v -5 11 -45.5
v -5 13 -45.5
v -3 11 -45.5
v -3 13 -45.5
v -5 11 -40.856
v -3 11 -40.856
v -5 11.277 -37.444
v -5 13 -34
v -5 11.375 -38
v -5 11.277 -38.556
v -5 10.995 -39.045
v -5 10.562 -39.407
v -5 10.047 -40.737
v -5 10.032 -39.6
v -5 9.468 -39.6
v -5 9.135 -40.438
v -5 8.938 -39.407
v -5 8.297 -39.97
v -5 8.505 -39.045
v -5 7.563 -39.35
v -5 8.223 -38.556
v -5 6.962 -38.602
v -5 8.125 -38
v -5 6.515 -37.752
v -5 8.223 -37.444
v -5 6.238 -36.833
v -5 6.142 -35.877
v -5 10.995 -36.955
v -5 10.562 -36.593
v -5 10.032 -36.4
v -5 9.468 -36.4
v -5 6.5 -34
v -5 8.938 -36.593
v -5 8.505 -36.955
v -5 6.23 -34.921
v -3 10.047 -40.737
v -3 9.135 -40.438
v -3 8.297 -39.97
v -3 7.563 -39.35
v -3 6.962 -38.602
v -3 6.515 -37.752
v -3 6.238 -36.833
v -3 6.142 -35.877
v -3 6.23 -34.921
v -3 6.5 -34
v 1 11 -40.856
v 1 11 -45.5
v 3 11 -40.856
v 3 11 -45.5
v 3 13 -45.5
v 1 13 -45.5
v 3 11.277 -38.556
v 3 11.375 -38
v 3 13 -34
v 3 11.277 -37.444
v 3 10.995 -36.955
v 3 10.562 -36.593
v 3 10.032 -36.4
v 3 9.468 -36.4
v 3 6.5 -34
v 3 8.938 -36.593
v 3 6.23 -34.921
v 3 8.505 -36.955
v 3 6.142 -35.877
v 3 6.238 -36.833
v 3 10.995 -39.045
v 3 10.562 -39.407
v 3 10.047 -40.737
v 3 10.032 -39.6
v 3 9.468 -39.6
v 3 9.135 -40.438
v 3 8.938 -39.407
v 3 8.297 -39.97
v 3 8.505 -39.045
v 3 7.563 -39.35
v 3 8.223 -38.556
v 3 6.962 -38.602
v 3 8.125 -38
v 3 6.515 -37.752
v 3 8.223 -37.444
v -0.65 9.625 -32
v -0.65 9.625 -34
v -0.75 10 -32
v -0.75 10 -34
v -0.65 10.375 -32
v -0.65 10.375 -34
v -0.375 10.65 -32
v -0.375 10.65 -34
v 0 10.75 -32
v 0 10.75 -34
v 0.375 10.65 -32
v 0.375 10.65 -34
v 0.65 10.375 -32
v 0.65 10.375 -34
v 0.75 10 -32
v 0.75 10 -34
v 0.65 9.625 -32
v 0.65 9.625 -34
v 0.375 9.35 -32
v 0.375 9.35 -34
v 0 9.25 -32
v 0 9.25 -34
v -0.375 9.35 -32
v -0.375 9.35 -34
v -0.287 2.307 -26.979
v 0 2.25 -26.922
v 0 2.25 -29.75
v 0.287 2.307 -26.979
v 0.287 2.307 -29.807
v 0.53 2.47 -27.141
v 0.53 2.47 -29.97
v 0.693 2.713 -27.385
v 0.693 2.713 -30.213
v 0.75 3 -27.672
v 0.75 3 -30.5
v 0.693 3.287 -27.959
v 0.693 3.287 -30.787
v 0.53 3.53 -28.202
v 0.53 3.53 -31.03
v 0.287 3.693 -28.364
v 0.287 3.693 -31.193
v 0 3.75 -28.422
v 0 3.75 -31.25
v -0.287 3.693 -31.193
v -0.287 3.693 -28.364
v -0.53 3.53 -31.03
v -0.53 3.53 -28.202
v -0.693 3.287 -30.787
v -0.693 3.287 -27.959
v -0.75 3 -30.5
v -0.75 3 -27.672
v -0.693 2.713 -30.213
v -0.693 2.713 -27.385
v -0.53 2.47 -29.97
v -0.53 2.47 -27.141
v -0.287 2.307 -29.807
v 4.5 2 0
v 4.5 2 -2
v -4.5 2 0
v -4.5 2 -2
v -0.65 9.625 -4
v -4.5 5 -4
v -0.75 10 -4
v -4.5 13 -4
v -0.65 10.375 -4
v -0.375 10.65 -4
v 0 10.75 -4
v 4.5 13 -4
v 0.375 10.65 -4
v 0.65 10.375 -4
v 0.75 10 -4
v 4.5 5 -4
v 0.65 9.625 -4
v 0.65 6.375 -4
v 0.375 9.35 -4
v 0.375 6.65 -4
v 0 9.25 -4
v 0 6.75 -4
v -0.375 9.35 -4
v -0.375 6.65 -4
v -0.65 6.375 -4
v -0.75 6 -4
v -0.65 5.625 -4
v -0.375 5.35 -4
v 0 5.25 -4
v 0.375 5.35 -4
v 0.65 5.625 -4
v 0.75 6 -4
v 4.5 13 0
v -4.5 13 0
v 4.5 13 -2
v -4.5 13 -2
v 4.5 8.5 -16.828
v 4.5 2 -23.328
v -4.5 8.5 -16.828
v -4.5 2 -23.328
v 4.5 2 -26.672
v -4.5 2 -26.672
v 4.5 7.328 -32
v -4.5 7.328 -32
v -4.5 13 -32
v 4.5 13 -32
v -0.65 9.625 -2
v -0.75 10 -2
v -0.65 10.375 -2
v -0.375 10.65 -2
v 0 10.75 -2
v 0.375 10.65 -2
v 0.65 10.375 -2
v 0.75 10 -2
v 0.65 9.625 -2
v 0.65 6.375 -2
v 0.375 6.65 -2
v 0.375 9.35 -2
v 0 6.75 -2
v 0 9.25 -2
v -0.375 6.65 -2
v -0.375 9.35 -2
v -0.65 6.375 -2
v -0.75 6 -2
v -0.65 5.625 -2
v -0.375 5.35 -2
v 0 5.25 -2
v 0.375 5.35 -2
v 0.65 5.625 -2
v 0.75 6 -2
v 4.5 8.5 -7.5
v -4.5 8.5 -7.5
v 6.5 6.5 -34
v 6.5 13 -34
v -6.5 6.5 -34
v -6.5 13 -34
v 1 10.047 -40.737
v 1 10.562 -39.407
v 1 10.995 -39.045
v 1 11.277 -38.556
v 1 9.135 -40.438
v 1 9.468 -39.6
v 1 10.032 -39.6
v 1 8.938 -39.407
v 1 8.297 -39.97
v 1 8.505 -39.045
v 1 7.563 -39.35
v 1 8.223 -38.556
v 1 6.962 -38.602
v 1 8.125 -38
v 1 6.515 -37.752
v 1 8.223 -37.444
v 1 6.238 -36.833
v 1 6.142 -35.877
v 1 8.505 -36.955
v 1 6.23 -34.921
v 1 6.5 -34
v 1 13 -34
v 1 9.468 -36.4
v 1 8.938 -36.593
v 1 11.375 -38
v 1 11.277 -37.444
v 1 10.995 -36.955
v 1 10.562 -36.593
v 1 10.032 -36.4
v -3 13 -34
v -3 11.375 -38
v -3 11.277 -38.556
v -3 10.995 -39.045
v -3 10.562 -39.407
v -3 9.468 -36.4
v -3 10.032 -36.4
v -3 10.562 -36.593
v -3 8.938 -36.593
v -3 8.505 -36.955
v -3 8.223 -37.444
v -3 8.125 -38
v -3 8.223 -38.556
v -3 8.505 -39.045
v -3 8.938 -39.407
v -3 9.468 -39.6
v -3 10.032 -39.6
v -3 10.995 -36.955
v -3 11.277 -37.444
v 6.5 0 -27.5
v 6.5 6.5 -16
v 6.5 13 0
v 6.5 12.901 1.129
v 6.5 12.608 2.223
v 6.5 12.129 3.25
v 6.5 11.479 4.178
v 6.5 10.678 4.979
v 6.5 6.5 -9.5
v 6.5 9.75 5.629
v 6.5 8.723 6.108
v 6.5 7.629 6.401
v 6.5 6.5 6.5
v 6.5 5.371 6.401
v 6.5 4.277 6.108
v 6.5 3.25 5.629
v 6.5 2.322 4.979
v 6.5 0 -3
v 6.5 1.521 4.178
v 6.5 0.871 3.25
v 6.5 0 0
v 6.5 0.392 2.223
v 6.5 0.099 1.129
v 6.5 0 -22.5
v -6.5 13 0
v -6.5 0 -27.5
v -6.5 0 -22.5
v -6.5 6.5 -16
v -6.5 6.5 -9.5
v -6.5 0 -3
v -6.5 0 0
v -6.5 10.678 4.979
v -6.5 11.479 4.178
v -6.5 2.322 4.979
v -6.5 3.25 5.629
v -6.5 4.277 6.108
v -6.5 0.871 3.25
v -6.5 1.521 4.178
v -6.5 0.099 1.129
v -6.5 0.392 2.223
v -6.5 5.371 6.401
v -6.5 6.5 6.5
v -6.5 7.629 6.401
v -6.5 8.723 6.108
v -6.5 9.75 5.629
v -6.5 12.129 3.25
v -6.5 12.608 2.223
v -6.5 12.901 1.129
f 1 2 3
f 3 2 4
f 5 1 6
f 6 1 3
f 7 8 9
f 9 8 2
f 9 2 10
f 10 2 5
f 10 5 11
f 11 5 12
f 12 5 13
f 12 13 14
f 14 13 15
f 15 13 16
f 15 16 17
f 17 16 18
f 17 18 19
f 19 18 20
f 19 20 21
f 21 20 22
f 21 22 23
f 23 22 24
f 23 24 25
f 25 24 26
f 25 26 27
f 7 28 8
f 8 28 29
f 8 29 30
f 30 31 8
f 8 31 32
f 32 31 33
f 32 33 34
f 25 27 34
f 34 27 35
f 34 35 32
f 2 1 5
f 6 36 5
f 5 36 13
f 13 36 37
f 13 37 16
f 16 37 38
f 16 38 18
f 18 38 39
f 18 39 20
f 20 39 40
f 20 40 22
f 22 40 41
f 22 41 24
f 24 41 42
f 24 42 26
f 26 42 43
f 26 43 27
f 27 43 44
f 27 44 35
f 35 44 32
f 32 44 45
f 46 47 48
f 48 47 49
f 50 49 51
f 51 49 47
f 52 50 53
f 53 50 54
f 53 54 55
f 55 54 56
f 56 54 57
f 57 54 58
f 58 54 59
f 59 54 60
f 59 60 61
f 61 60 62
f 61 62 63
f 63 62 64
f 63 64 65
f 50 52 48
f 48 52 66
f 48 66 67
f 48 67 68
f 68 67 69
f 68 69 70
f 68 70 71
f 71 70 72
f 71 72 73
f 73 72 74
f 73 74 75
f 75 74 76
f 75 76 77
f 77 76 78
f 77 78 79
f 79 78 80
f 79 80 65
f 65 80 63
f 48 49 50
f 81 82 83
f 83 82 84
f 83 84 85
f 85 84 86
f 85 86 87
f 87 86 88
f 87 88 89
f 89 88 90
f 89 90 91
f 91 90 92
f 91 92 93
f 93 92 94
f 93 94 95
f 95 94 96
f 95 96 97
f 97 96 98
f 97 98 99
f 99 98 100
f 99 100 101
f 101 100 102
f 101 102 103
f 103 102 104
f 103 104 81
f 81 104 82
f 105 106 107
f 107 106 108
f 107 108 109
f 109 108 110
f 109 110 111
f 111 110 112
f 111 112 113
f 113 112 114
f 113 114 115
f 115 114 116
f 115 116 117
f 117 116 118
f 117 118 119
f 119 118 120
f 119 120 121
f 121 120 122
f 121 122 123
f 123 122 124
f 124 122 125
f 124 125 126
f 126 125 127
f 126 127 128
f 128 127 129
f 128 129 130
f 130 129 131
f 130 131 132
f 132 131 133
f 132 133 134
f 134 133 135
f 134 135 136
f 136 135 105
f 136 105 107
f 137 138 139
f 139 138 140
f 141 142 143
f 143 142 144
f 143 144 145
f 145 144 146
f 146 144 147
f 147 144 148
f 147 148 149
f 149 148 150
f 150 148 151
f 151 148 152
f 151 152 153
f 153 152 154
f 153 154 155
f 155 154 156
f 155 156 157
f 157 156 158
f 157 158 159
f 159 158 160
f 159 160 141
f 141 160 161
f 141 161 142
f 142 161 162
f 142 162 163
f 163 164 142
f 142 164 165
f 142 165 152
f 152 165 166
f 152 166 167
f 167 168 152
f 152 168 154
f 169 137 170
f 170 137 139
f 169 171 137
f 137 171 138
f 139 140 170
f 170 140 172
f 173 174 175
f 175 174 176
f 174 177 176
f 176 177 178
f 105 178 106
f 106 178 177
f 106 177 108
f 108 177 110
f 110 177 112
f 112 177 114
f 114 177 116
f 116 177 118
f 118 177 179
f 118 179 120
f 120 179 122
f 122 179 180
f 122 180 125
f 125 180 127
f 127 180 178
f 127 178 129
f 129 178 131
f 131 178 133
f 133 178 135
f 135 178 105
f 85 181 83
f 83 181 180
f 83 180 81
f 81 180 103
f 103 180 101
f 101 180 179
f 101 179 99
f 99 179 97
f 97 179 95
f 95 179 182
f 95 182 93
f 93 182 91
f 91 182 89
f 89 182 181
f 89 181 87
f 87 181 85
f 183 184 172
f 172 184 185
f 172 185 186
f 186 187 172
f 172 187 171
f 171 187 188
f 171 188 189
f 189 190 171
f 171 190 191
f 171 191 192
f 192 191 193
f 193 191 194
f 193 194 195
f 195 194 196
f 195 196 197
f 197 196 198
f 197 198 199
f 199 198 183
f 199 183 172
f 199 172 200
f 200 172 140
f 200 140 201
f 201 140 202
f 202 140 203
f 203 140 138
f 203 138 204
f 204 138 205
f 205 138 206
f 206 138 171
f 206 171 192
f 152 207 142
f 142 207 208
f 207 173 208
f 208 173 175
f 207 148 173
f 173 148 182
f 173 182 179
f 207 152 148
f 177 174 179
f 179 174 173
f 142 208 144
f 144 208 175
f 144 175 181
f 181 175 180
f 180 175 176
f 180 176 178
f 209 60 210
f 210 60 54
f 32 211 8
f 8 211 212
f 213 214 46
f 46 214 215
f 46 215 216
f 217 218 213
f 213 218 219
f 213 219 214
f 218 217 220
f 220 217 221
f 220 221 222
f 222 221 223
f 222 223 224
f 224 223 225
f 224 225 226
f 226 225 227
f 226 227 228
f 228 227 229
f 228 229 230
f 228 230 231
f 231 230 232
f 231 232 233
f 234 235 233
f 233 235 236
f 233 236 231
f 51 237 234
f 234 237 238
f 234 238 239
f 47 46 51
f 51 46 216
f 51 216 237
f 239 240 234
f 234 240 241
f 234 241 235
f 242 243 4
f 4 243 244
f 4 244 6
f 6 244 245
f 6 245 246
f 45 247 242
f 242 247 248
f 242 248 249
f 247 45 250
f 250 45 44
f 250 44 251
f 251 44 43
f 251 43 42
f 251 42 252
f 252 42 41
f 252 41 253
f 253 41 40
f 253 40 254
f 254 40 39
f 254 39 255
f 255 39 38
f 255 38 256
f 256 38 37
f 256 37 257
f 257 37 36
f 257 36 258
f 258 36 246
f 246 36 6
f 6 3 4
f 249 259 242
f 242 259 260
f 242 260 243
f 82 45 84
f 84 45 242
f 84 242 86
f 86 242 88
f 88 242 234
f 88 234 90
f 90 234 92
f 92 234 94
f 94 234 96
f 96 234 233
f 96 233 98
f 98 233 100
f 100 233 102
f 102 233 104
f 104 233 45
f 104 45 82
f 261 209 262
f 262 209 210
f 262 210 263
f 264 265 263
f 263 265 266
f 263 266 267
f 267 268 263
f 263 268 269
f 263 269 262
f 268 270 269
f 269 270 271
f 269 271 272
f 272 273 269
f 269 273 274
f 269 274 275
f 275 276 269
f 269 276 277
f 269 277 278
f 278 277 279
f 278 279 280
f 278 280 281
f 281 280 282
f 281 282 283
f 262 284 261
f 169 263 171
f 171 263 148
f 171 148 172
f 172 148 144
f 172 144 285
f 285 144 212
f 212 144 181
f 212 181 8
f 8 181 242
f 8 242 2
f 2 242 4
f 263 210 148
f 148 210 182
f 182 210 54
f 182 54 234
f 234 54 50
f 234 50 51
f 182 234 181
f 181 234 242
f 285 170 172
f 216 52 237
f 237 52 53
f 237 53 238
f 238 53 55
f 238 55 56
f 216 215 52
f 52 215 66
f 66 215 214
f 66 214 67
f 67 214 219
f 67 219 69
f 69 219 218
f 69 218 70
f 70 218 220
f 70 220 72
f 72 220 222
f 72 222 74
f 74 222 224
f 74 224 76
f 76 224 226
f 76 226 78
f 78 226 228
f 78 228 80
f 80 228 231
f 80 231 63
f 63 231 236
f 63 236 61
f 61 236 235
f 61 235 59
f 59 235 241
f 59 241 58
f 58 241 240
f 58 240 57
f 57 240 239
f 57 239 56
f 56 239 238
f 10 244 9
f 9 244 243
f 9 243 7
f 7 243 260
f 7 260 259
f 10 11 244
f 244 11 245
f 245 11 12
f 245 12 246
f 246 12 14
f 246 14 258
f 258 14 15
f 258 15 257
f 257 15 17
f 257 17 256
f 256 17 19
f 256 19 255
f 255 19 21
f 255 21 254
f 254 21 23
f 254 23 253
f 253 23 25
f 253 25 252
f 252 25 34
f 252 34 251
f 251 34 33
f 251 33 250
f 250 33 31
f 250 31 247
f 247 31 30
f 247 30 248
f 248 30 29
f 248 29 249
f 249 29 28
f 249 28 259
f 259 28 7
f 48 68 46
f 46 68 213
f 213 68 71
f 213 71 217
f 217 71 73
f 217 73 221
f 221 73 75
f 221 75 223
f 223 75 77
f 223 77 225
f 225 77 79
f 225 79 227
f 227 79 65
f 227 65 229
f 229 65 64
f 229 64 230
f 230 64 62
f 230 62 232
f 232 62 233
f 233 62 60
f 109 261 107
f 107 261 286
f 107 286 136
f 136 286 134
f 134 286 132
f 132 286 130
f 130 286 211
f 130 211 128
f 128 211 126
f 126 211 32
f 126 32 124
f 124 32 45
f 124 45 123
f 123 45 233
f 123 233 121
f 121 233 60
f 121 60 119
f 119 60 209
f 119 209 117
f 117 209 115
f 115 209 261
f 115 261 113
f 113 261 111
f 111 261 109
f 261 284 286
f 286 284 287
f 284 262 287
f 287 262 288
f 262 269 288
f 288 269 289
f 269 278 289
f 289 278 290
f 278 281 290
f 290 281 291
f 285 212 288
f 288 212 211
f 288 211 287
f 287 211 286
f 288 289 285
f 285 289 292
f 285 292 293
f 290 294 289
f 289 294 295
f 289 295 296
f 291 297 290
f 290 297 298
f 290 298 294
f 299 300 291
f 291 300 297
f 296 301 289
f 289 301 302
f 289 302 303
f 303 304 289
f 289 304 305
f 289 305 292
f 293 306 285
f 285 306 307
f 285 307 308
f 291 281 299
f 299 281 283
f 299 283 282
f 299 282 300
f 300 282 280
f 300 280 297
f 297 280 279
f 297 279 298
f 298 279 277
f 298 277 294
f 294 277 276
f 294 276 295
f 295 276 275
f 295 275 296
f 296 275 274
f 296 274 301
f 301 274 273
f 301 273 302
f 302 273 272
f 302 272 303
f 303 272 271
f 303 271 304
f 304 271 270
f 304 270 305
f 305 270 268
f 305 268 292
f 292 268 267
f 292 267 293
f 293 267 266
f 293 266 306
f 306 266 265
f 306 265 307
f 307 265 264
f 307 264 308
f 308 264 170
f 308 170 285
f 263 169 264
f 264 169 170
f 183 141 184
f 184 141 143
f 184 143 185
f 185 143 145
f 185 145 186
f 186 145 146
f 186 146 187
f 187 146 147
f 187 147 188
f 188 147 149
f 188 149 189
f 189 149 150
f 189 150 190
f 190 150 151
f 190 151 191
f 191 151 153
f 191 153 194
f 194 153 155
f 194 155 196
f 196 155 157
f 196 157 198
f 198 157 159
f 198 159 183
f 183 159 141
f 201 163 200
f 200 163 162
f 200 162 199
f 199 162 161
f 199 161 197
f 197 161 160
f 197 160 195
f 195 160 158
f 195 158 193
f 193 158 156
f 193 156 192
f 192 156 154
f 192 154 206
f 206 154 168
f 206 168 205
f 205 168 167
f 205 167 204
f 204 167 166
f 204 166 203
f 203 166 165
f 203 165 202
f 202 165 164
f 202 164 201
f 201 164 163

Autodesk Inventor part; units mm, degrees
ref_plane "YZ Plane" through (0, 0, 0) normal (1, 0, 0) x (0, 1, 0)
ref_plane "XZ Plane" through (0, 0, 0) normal (0, 1, 0) x (-1, 0, 0)
sketch "Sketch2" plane through (0, 0, 0) normal (1, 0, 0) x (0, 1, 0)
  line L0 (0, 0) -> (0, -3)
  line L1 (13, 0) -> (13, -16)
  arc A0 (13, 0) -> (0, 0) centre (6.5, 0) ccw
  line L2 (-3.1385, 0) -> (18.8309, 0) projected
  line L3 (0, -52.4723) -> (0, 16.3287) projected
  line L4 (0, -3) -> (6.5, -9.5)
  line L5 (0, -3) -> (9.1924, -3) construction
  line L6 (6.5, -9.5) -> (6.5, -16)
  line L7 (6.5, -16) -> (0, -22.5)
  line L8 (6.5, -16) -> (15.6924, -16) construction
  line L9 (0, -22.5) -> (0, -27.5)
  line L10 (0, -27.5) -> (6.5, -34)
  line L11 (0, -27.5) -> (9.1924, -27.5) construction
  line L12 (13, -16) -> (13, -34)
  line L13 (13, -34) -> (13, -40.5)
  arc A1 (6.5, -34) -> (13, -40.5) centre (11.1419, -35.8581) ccw
  circle A2 centre (9.75, -38) radius 1.625
  dimension "d4" = 13
  dimension "d9" = 45
  dimension "d10" = 6.5
  dimension "d11" = 3
  dimension "d12" = 6.5
  dimension "d13" = 135
  dimension "d14" = 6.5
  dimension "d15" = 5
  dimension "d16" = 45
  dimension "d17" = 6.5
  dimension "d18" = 18
  dimension "d19" = 6.5
  dimension "d20" = 5
  dimension "d21" = 3.25
  dimension "d22" = 3.25
  dimension "d23" = 2.5
  dimension "d96" = 16
extrude "Extrusion1" add sketch "Sketch2" along normal mid plane 13 contours L2 L1 L12 L13 A1 L10 L3 L7 L6 L4 L0 | A0 L2
sketch "Sketch3" plane through (-6.5, 13, 0) normal (0, 1, 0) x (1, 0, 0)
  line L0 (0, 34) -> (13, 34) projected
  line L1 (0, 41) -> (1.5, 41)
  line L2 (1.5, 41) -> (1.5, 34)
  line L3 (1.5, 34) -> (0, 34)
  line L4 (0, 34) -> (0, 41)
  line L5 (0, 0) -> (0, 40.5) projected
  line L6 (3.5, 41) -> (7.5, 41)
  line L7 (7.5, 41) -> (7.5, 34)
  line L8 (7.5, 34) -> (3.5, 34)
  line L9 (3.5, 34) -> (3.5, 41)
  line L10 (9.5, 41) -> (13, 41)
  line L11 (13, 41) -> (13, 34)
  line L12 (13, 34) -> (9.5, 34)
  line L13 (9.5, 34) -> (9.5, 41)
  line L14 (13, 40.5) -> (13, 0) projected
  point P0 (6.5, 0)
  dimension "d47" = 1.5
  dimension "d48" = 7
  dimension "d49" = 4
  dimension "d50" = 7
  dimension "d51" = 2
  dimension "d52" = 7
  dimension "d53" = 2
extrude "Extrusion2" cut sketch "Sketch3" against normal blind 13
ref_plane "Work Plane1" through (4.5, 0, 0) normal (1, 0, 0) x (0, 0, -1)
sketch "Sketch4" plane through (4.5, 0, 0) normal (1, 0, 0) x (0, 0, -1)
  arc A0 (0, 13) -> (0, 0) centre (0, 6.5) ccw projected
  line L0 (0, 13) -> (34, 13) projected
  line L1 (34, 13) -> (34, 6.5) projected
  line L2 (34, 6.5) -> (27.5, 0) projected
  line L3 (27.5, 0) -> (22.5, 0) projected
  line L4 (22.5, 0) -> (16, 6.5) projected
  line L5 (34, 13) -> (34, 6.5) projected
  line L6 (34, 6.5) -> (27.5, 0) projected
  line L7 (27.5, 0) -> (22.5, 0) projected
  line L8 (22.5, 0) -> (16, 6.5) projected
  line L9 (16, 6.5) -> (9.5, 6.5) projected
  line L10 (9.5, 6.5) -> (3, 0) projected
  line L11 (3, 0) -> (0, 0) projected
  arc A1 (0, 13) -> (0, 0) centre (0, 6.5) ccw projected
  line L12 (0, 13) -> (34, 13) projected
  line L13 (0, 13) -> (0, 2)
  line L14 (0, 2) -> (2, 2)
  line L15 (4, 5) -> (7.5, 8.5)
  line L16 (2.1716, 2) -> (11.364, 2) construction
  line L17 (32, 13) -> (32, 7.3284)
  line L18 (32, 7.3284) -> (26.6716, 2)
  line L19 (32, 7.3284) -> (39.5355, 7.3284) construction
  line L20 (26.6716, 2) -> (23.3284, 2)
  line L21 (23.3284, 2) -> (16.8284, 8.5)
  line L22 (23.3284, 2) -> (32.5208, 2) construction
  line L23 (16.8284, 8.5) -> (7.5, 8.5)
  line L24 (2, 2) -> (2, 13)
  line L25 (0, 13) -> (2, 13)
  line L26 (2.1716, 13) -> (32, 13)
  line L27 (4, 13) -> (4, 5)
  dimension "d57" = 11
  dimension "d59" = 45
  dimension "d60" = 2
  dimension "d62" = 2
  dimension "d63" = 2
  dimension "d64" = 135
  dimension "d65" = 2
  dimension "d66" = 2
  dimension "d67" = 135
  dimension "d94" = 2
  dimension "d97" = 2
  dimension "d98" = 2
  dimension "d99" = 2
extrude "Extrusion3" cut sketch "Sketch4" against normal blind 9 contours L0 L24 L14 L13 | L0 L17 L18 L20 L21 L23 L15 L27
sketch "Sketch6" plane through (1, 13, -34) normal (0, 0, -1) x (-1, 0, 0)
  line L0 (1, -15.6) -> (1, 2.6) projected
  line L1 (10.1, -13) -> (-8.1, -13) projected
  circle A0 centre (1, -3) radius 0.75
  line L2 (0, 0) -> (4, 0) projected
  circle A1 centre (1, -10) radius 0.75
  point P0 (1, -13)
  dimension "d80" = 1.5
  dimension "d81" = 3
  dimension "d82" = 1.5
  dimension "d83" = 3
extrude "Extrusion5" cut sketch "Sketch6" against normal blind 9
sketch "Sketch7" plane through (3, 13, -34) normal (1, 0, 0) x (0, 0, -1)
  line L0 (6.5, 0) -> (0, 0) projected
  line L1 (6.5, 0) -> (11.5, 0)
  line L2 (11.5, 0) -> (11.5, -2)
  line L3 (11.5, -2) -> (6.5, -2)
  line L4 (6.5, -2) -> (6.5, 0)
  point P0 (-34, -13)
  dimension "d86" = 5
  dimension "d87" = 2
extrude "Extrusion6" add sketch "Sketch7" against normal blind 2
sketch "Sketch8" plane through (-5, 13, -40.5) normal (-1, 0, 0) x (0, 0, 1)
  line L0 (0, 0) -> (6.5, 0) projected
  line L1 (-5, -2) -> (0, -2)
  line L2 (0, -2) -> (0, 0)
  line L3 (0, 0) -> (-5, 0)
  line L4 (-5, 0) -> (-5, -2)
  point P0 (40.5, -13)
  dimension "d90" = 5
  dimension "d91" = 2
extrude "Extrusion7" add sketch "Sketch8" against normal blind 2
sketch "Sketch9" plane through (4.5, 5, -4) normal (0, 0, -1) x (-1, 0, 0)
  line L0 (0, -3) -> (0, 8) projected
  line L1 (9, 8) -> (0, 8) projected
  line L2 (9, 8) -> (9, -3) projected
  line L3 (0, -3) -> (9, -3) projected
  circle A0 centre (4.5, 5) radius 0.75
  circle A1 centre (4.5, 1) radius 0.75
  point P0 (4.5, -5)
  dimension "d100" = 1.5
  dimension "d101" = 3
  dimension "d102" = 4.5
  dimension "d103" = 1.5
  dimension "d105" = 4
  dimension "d106" = 4.5
extrude "Extrusion8" cut sketch "Sketch9" against normal blind 2 contours A0 | A1
properties part number "pinkie"
